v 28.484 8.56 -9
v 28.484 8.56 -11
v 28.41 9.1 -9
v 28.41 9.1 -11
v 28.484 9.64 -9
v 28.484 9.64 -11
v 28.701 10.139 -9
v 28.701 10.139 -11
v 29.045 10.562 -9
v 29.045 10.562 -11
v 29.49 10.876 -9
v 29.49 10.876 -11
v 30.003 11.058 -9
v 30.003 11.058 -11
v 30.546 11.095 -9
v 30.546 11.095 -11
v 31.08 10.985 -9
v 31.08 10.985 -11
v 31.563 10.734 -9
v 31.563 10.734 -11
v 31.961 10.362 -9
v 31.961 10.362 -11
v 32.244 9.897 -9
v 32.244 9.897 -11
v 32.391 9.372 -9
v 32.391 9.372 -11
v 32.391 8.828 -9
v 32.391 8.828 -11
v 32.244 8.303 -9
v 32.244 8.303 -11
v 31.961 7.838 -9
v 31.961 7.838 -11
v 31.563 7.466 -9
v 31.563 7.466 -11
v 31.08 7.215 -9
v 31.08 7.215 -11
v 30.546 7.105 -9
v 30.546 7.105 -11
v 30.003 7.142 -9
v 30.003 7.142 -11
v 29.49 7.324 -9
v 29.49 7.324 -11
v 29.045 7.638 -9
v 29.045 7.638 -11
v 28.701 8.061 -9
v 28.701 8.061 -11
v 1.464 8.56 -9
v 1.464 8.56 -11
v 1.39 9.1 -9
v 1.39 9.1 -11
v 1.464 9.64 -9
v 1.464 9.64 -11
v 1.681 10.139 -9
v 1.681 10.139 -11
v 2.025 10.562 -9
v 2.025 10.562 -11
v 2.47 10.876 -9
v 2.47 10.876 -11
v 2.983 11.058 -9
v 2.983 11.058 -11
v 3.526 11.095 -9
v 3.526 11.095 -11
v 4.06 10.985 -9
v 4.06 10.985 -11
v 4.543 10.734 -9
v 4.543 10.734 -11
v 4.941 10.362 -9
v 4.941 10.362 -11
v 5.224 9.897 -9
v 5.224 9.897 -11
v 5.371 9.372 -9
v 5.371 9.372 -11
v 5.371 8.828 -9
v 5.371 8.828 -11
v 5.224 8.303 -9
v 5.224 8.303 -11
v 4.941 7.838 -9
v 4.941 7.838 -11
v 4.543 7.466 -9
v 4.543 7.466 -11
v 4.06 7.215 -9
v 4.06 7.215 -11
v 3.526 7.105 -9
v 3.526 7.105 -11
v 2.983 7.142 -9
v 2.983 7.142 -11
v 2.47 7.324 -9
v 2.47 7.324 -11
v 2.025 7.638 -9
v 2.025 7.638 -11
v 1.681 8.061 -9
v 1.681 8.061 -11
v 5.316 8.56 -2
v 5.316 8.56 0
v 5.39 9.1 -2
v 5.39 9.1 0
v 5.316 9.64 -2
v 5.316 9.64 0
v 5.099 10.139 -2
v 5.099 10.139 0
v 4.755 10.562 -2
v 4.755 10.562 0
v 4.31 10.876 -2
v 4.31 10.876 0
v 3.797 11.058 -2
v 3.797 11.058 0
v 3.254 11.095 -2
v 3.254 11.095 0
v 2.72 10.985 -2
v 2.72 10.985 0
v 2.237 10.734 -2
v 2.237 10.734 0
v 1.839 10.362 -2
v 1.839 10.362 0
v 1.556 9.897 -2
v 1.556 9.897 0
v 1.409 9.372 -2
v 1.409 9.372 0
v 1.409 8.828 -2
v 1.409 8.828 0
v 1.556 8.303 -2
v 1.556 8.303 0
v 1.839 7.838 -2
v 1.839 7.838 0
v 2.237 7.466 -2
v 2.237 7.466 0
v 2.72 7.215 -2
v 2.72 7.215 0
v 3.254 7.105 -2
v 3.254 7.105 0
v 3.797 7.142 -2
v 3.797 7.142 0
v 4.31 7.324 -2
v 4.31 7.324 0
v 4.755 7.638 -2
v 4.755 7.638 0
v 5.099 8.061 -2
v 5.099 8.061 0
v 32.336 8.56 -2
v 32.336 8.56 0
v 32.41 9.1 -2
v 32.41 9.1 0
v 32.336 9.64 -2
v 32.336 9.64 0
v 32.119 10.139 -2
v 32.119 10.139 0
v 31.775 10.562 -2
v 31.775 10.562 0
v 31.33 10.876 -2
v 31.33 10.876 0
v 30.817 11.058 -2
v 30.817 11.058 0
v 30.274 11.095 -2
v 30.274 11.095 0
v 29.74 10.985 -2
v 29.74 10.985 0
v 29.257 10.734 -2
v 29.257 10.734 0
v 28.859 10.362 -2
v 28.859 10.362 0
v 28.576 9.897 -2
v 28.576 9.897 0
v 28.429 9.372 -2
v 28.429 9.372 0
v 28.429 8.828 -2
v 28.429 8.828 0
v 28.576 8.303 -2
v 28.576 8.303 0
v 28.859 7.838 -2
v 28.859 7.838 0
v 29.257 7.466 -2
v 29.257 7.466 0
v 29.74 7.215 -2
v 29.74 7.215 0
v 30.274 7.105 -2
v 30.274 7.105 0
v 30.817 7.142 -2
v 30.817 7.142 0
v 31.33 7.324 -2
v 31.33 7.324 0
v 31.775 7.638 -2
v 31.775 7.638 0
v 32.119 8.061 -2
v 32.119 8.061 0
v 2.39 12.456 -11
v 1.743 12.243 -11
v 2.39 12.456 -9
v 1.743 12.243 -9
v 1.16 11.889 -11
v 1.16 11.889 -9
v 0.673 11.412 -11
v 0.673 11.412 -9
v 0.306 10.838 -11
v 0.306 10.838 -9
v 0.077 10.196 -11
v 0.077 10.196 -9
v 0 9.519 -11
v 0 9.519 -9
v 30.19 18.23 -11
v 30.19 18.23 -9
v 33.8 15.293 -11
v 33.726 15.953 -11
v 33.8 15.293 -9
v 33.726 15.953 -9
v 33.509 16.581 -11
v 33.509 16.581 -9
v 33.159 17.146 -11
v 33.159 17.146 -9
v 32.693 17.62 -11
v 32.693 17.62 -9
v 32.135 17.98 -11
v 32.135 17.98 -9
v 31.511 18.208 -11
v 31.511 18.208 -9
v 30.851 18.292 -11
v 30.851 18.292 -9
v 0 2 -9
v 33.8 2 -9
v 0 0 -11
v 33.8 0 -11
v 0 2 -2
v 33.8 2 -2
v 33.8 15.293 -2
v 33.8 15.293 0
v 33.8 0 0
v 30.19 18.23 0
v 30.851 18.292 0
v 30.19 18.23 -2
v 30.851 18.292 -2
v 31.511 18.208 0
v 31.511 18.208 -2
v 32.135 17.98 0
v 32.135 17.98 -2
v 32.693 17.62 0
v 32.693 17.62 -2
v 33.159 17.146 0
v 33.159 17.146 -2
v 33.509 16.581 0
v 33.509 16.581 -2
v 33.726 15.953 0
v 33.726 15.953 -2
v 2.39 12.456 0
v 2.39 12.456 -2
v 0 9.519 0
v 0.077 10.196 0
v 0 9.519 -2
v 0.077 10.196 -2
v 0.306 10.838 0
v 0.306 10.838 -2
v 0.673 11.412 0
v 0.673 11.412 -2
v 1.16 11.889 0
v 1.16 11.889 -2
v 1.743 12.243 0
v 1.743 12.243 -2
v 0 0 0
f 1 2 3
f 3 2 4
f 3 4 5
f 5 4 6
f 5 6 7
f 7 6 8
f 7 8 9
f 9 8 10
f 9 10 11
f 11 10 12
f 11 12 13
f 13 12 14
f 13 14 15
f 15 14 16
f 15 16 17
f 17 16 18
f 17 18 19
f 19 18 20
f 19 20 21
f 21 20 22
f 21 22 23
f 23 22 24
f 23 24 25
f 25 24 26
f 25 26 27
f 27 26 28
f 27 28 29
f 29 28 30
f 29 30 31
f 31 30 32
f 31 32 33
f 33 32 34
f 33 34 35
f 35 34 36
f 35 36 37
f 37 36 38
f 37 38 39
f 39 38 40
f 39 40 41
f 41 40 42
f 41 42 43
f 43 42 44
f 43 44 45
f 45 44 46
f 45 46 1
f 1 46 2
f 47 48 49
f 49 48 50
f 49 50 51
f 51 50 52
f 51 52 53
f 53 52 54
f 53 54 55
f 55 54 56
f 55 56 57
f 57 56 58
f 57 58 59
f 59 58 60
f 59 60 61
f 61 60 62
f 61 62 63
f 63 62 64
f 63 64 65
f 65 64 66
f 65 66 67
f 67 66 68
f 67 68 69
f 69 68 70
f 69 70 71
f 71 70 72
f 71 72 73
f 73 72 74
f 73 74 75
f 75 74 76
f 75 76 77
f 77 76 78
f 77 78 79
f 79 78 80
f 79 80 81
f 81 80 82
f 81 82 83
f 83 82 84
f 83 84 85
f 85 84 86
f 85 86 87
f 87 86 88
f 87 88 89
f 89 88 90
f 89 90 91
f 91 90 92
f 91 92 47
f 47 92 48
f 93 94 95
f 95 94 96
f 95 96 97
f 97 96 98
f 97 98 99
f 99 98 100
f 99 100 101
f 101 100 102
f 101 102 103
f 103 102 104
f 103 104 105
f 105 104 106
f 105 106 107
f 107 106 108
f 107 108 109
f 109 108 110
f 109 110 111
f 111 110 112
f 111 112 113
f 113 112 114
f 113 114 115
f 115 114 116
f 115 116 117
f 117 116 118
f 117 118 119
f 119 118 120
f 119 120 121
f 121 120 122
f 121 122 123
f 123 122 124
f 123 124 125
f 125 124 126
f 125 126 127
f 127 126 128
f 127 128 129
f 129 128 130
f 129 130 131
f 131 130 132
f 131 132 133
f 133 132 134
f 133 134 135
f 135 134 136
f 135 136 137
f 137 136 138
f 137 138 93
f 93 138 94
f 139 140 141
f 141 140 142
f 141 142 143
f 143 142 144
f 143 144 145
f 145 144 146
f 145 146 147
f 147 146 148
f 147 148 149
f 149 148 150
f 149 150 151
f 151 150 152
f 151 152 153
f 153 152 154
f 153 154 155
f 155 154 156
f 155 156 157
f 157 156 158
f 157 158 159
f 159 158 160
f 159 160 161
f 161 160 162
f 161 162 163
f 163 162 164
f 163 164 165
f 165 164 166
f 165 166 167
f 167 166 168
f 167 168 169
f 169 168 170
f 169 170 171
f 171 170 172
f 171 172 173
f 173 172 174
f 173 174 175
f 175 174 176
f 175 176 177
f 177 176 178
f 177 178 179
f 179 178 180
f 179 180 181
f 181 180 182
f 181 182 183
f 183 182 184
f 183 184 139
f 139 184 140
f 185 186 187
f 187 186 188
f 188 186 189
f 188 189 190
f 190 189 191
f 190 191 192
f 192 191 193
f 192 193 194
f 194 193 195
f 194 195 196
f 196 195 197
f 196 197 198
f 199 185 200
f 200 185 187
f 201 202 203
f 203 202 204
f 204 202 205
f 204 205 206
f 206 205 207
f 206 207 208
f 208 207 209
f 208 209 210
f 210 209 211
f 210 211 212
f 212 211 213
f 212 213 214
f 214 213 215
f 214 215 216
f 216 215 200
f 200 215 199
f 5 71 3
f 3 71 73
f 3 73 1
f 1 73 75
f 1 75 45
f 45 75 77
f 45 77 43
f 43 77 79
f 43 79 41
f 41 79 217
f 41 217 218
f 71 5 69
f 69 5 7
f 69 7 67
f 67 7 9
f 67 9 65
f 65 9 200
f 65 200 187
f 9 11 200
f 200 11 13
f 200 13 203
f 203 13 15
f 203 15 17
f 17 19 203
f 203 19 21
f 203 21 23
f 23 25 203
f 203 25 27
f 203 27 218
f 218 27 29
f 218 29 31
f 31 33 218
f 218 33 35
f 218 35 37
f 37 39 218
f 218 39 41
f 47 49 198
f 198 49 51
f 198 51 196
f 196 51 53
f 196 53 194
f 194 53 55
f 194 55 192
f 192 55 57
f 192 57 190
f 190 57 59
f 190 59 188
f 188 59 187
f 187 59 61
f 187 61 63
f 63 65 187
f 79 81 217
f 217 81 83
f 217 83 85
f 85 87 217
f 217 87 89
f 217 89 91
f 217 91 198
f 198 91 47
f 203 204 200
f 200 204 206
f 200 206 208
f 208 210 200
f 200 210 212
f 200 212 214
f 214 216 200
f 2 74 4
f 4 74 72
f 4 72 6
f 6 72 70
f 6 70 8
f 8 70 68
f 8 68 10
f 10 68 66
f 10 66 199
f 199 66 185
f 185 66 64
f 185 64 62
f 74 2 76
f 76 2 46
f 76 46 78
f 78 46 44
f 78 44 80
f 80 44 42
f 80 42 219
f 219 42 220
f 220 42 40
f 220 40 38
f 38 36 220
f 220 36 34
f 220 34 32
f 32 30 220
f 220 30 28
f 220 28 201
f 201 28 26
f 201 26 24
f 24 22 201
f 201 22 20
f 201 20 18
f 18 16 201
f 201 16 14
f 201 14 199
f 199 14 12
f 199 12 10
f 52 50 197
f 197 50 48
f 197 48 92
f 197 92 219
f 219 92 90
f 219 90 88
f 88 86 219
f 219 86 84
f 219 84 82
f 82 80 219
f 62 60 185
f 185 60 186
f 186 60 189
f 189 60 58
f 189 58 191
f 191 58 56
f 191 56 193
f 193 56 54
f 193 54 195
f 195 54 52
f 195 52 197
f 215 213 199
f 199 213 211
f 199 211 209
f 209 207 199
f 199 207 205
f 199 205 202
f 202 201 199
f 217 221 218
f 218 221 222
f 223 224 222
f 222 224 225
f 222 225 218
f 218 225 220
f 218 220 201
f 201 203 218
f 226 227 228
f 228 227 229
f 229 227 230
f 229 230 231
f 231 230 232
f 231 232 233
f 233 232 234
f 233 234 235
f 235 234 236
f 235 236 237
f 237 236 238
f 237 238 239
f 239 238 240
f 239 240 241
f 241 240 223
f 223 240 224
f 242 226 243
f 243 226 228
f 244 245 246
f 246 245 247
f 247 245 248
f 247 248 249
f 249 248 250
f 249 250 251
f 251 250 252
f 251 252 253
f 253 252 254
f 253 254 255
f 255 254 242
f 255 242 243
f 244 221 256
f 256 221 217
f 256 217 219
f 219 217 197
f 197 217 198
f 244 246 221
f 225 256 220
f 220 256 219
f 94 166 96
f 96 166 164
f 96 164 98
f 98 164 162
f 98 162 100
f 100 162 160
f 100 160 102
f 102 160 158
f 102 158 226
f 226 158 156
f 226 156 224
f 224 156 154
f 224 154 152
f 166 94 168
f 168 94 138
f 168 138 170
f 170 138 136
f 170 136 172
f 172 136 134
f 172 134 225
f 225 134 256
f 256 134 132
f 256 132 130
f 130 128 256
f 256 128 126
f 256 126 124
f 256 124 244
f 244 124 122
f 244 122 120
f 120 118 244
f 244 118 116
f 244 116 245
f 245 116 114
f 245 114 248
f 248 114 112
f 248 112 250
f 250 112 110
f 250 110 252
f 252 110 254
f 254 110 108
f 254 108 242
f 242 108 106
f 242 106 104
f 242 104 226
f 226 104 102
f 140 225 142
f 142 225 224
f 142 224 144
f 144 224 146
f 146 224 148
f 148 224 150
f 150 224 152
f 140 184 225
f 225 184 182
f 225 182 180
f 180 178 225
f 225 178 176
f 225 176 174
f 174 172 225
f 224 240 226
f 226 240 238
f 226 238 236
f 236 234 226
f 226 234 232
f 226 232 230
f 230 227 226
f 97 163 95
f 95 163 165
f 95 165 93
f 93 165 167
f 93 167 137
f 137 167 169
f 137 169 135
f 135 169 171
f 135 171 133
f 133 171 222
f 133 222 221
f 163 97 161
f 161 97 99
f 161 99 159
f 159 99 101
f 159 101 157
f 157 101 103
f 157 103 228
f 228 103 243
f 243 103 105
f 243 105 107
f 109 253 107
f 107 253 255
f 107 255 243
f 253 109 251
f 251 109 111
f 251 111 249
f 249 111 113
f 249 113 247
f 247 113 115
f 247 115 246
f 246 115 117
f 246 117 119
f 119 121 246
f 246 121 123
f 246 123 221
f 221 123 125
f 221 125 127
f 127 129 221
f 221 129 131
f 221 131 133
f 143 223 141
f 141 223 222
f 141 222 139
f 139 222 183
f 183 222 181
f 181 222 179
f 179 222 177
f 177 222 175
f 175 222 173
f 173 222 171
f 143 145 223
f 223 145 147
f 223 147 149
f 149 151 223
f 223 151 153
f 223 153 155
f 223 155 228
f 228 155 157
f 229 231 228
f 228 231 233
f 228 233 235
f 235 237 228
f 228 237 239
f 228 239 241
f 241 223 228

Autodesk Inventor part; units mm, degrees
ref_plane "YZ Plane" through (0, 0, 0) normal (1, 0, 0) x (0, 1, 0)
ref_plane "XZ Plane" through (0, 0, 0) normal (0, 1, 0) x (-1, 0, 0)
ref_plane "XY Plane" through (0, 0, 0) normal (0, 0, 1) x (1, 0, 0)
sketch "Esquisse1" plane through (0, 0, 0) normal (0, 0, 1) x (1, 0, 0)
  line L0 (0, 0) -> (33.8, 0)
  line L1 (0, 0) -> (0, 9.5191)
  line L2 (2.3899, 12.4564) -> (30.1899, 18.2302)
  line L3 (33.8, 15.2929) -> (33.8, 0)
  arc A0 (2.3899, 12.4564) -> (0, 9.5191) centre (3, 9.5191) ccw
  arc A1 (33.8, 15.2929) -> (30.1899, 18.2302) centre (30.8, 15.2929) ccw
  point P0 (0, 11.96)
  point P1 (33.8, 18.98)
  dimension "d0" = 33.8
  dimension "d1" = 18.98
  dimension "d2" = 11.96
  dimension "d3" = 3
  dimension "d4" = 3
extrude "Extrusion1" add sketch "Esquisse1" against normal blind 2
sketch "Esquisse2" plane through (0, 0, 0) normal (0, -1, 0) x (1, 0, 0)
  line L0 (33.8, -2) -> (0, -2) projected
  line L1 (33.8, -2) -> (0, -2)
  line L2 (0, -2) -> (0, -11)
  line L3 (0, -11) -> (33.8, -11)
  line L4 (33.8, -11) -> (33.8, -2)
  point P0 (33.8, 0)
  dimension "d8" = 9
extrude "Extrusion2" add sketch "Esquisse2" against normal blind 2
sketch "Esquisse3" plane through (33.8, 0, -11) normal (0, 0, -1) x (-1, 0, 0)
  line L0 (0, 2) -> (33.8, 2) projected
  line L1 (33.8, 2) -> (33.8, 9.5191)
  line L2 (0, 15.2929) -> (0, 2) projected
  line L3 (0, 15.2929) -> (0, 2)
  line L4 (0, 2) -> (33.8, 2)
  line L5 (3.6101, 18.2302) -> (31.4101, 12.4564)
  arc A0 (3.6101, 18.2302) -> (0, 15.2929) centre (3, 15.2929) ccw
  arc A1 (33.8, 9.5191) -> (31.4101, 12.4564) centre (30.8, 9.5191) ccw
  point P0 (33.8, 0)
  point P1 (33.8, 11.96)
  point P2 (0, 18.98)
  dimension "d11" = 9.96
  dimension "d12" = 16.98
  dimension "d13" = 3
extrude "Extrusion3" add sketch "Esquisse3" against normal blind 2
sketch "Esquisse4" plane through (0, 0, 0) normal (0, 0, 1) x (1, 0, 0)
  line L0 (0, 0) -> (3.39, 0) construction
  line L1 (0, 0) -> (33.8, 0) construction
  line L2 (3.39, 9.1) -> (3.39, 0) construction
  circle A0 centre (3.39, 9.1) radius 2
  circle A1 centre (30.41, 9.1) radius 2
  line L3 (33.8, 0) -> (33.8, 15.2929) projected
  dimension "d16" = 3.39
  dimension "d17" = 9.1
  dimension "d19" = 4
  dimension "d20" = 4
  dimension "d21" = 3.39
  dimension "d26" = 9.1
extrude "Extrusion4" cut sketch "Esquisse4" against normal blind 2
sketch "Esquisse5" plane through (33.8, 0, -11) normal (0, 0, -1) x (-1, 0, 0)
  circle A0 centre (3.39, 9.1) radius 2 projected
  circle A1 centre (3.39, 9.1) radius 2
  circle A2 centre (30.41, 9.1) radius 2 projected
  circle A3 centre (30.41, 9.1) radius 2
  point P0 (33.8, 0)
extrude "Extrusion5" cut sketch "Esquisse5" against normal blind 2
properties part number "finger1" material "Plastique ABS"
